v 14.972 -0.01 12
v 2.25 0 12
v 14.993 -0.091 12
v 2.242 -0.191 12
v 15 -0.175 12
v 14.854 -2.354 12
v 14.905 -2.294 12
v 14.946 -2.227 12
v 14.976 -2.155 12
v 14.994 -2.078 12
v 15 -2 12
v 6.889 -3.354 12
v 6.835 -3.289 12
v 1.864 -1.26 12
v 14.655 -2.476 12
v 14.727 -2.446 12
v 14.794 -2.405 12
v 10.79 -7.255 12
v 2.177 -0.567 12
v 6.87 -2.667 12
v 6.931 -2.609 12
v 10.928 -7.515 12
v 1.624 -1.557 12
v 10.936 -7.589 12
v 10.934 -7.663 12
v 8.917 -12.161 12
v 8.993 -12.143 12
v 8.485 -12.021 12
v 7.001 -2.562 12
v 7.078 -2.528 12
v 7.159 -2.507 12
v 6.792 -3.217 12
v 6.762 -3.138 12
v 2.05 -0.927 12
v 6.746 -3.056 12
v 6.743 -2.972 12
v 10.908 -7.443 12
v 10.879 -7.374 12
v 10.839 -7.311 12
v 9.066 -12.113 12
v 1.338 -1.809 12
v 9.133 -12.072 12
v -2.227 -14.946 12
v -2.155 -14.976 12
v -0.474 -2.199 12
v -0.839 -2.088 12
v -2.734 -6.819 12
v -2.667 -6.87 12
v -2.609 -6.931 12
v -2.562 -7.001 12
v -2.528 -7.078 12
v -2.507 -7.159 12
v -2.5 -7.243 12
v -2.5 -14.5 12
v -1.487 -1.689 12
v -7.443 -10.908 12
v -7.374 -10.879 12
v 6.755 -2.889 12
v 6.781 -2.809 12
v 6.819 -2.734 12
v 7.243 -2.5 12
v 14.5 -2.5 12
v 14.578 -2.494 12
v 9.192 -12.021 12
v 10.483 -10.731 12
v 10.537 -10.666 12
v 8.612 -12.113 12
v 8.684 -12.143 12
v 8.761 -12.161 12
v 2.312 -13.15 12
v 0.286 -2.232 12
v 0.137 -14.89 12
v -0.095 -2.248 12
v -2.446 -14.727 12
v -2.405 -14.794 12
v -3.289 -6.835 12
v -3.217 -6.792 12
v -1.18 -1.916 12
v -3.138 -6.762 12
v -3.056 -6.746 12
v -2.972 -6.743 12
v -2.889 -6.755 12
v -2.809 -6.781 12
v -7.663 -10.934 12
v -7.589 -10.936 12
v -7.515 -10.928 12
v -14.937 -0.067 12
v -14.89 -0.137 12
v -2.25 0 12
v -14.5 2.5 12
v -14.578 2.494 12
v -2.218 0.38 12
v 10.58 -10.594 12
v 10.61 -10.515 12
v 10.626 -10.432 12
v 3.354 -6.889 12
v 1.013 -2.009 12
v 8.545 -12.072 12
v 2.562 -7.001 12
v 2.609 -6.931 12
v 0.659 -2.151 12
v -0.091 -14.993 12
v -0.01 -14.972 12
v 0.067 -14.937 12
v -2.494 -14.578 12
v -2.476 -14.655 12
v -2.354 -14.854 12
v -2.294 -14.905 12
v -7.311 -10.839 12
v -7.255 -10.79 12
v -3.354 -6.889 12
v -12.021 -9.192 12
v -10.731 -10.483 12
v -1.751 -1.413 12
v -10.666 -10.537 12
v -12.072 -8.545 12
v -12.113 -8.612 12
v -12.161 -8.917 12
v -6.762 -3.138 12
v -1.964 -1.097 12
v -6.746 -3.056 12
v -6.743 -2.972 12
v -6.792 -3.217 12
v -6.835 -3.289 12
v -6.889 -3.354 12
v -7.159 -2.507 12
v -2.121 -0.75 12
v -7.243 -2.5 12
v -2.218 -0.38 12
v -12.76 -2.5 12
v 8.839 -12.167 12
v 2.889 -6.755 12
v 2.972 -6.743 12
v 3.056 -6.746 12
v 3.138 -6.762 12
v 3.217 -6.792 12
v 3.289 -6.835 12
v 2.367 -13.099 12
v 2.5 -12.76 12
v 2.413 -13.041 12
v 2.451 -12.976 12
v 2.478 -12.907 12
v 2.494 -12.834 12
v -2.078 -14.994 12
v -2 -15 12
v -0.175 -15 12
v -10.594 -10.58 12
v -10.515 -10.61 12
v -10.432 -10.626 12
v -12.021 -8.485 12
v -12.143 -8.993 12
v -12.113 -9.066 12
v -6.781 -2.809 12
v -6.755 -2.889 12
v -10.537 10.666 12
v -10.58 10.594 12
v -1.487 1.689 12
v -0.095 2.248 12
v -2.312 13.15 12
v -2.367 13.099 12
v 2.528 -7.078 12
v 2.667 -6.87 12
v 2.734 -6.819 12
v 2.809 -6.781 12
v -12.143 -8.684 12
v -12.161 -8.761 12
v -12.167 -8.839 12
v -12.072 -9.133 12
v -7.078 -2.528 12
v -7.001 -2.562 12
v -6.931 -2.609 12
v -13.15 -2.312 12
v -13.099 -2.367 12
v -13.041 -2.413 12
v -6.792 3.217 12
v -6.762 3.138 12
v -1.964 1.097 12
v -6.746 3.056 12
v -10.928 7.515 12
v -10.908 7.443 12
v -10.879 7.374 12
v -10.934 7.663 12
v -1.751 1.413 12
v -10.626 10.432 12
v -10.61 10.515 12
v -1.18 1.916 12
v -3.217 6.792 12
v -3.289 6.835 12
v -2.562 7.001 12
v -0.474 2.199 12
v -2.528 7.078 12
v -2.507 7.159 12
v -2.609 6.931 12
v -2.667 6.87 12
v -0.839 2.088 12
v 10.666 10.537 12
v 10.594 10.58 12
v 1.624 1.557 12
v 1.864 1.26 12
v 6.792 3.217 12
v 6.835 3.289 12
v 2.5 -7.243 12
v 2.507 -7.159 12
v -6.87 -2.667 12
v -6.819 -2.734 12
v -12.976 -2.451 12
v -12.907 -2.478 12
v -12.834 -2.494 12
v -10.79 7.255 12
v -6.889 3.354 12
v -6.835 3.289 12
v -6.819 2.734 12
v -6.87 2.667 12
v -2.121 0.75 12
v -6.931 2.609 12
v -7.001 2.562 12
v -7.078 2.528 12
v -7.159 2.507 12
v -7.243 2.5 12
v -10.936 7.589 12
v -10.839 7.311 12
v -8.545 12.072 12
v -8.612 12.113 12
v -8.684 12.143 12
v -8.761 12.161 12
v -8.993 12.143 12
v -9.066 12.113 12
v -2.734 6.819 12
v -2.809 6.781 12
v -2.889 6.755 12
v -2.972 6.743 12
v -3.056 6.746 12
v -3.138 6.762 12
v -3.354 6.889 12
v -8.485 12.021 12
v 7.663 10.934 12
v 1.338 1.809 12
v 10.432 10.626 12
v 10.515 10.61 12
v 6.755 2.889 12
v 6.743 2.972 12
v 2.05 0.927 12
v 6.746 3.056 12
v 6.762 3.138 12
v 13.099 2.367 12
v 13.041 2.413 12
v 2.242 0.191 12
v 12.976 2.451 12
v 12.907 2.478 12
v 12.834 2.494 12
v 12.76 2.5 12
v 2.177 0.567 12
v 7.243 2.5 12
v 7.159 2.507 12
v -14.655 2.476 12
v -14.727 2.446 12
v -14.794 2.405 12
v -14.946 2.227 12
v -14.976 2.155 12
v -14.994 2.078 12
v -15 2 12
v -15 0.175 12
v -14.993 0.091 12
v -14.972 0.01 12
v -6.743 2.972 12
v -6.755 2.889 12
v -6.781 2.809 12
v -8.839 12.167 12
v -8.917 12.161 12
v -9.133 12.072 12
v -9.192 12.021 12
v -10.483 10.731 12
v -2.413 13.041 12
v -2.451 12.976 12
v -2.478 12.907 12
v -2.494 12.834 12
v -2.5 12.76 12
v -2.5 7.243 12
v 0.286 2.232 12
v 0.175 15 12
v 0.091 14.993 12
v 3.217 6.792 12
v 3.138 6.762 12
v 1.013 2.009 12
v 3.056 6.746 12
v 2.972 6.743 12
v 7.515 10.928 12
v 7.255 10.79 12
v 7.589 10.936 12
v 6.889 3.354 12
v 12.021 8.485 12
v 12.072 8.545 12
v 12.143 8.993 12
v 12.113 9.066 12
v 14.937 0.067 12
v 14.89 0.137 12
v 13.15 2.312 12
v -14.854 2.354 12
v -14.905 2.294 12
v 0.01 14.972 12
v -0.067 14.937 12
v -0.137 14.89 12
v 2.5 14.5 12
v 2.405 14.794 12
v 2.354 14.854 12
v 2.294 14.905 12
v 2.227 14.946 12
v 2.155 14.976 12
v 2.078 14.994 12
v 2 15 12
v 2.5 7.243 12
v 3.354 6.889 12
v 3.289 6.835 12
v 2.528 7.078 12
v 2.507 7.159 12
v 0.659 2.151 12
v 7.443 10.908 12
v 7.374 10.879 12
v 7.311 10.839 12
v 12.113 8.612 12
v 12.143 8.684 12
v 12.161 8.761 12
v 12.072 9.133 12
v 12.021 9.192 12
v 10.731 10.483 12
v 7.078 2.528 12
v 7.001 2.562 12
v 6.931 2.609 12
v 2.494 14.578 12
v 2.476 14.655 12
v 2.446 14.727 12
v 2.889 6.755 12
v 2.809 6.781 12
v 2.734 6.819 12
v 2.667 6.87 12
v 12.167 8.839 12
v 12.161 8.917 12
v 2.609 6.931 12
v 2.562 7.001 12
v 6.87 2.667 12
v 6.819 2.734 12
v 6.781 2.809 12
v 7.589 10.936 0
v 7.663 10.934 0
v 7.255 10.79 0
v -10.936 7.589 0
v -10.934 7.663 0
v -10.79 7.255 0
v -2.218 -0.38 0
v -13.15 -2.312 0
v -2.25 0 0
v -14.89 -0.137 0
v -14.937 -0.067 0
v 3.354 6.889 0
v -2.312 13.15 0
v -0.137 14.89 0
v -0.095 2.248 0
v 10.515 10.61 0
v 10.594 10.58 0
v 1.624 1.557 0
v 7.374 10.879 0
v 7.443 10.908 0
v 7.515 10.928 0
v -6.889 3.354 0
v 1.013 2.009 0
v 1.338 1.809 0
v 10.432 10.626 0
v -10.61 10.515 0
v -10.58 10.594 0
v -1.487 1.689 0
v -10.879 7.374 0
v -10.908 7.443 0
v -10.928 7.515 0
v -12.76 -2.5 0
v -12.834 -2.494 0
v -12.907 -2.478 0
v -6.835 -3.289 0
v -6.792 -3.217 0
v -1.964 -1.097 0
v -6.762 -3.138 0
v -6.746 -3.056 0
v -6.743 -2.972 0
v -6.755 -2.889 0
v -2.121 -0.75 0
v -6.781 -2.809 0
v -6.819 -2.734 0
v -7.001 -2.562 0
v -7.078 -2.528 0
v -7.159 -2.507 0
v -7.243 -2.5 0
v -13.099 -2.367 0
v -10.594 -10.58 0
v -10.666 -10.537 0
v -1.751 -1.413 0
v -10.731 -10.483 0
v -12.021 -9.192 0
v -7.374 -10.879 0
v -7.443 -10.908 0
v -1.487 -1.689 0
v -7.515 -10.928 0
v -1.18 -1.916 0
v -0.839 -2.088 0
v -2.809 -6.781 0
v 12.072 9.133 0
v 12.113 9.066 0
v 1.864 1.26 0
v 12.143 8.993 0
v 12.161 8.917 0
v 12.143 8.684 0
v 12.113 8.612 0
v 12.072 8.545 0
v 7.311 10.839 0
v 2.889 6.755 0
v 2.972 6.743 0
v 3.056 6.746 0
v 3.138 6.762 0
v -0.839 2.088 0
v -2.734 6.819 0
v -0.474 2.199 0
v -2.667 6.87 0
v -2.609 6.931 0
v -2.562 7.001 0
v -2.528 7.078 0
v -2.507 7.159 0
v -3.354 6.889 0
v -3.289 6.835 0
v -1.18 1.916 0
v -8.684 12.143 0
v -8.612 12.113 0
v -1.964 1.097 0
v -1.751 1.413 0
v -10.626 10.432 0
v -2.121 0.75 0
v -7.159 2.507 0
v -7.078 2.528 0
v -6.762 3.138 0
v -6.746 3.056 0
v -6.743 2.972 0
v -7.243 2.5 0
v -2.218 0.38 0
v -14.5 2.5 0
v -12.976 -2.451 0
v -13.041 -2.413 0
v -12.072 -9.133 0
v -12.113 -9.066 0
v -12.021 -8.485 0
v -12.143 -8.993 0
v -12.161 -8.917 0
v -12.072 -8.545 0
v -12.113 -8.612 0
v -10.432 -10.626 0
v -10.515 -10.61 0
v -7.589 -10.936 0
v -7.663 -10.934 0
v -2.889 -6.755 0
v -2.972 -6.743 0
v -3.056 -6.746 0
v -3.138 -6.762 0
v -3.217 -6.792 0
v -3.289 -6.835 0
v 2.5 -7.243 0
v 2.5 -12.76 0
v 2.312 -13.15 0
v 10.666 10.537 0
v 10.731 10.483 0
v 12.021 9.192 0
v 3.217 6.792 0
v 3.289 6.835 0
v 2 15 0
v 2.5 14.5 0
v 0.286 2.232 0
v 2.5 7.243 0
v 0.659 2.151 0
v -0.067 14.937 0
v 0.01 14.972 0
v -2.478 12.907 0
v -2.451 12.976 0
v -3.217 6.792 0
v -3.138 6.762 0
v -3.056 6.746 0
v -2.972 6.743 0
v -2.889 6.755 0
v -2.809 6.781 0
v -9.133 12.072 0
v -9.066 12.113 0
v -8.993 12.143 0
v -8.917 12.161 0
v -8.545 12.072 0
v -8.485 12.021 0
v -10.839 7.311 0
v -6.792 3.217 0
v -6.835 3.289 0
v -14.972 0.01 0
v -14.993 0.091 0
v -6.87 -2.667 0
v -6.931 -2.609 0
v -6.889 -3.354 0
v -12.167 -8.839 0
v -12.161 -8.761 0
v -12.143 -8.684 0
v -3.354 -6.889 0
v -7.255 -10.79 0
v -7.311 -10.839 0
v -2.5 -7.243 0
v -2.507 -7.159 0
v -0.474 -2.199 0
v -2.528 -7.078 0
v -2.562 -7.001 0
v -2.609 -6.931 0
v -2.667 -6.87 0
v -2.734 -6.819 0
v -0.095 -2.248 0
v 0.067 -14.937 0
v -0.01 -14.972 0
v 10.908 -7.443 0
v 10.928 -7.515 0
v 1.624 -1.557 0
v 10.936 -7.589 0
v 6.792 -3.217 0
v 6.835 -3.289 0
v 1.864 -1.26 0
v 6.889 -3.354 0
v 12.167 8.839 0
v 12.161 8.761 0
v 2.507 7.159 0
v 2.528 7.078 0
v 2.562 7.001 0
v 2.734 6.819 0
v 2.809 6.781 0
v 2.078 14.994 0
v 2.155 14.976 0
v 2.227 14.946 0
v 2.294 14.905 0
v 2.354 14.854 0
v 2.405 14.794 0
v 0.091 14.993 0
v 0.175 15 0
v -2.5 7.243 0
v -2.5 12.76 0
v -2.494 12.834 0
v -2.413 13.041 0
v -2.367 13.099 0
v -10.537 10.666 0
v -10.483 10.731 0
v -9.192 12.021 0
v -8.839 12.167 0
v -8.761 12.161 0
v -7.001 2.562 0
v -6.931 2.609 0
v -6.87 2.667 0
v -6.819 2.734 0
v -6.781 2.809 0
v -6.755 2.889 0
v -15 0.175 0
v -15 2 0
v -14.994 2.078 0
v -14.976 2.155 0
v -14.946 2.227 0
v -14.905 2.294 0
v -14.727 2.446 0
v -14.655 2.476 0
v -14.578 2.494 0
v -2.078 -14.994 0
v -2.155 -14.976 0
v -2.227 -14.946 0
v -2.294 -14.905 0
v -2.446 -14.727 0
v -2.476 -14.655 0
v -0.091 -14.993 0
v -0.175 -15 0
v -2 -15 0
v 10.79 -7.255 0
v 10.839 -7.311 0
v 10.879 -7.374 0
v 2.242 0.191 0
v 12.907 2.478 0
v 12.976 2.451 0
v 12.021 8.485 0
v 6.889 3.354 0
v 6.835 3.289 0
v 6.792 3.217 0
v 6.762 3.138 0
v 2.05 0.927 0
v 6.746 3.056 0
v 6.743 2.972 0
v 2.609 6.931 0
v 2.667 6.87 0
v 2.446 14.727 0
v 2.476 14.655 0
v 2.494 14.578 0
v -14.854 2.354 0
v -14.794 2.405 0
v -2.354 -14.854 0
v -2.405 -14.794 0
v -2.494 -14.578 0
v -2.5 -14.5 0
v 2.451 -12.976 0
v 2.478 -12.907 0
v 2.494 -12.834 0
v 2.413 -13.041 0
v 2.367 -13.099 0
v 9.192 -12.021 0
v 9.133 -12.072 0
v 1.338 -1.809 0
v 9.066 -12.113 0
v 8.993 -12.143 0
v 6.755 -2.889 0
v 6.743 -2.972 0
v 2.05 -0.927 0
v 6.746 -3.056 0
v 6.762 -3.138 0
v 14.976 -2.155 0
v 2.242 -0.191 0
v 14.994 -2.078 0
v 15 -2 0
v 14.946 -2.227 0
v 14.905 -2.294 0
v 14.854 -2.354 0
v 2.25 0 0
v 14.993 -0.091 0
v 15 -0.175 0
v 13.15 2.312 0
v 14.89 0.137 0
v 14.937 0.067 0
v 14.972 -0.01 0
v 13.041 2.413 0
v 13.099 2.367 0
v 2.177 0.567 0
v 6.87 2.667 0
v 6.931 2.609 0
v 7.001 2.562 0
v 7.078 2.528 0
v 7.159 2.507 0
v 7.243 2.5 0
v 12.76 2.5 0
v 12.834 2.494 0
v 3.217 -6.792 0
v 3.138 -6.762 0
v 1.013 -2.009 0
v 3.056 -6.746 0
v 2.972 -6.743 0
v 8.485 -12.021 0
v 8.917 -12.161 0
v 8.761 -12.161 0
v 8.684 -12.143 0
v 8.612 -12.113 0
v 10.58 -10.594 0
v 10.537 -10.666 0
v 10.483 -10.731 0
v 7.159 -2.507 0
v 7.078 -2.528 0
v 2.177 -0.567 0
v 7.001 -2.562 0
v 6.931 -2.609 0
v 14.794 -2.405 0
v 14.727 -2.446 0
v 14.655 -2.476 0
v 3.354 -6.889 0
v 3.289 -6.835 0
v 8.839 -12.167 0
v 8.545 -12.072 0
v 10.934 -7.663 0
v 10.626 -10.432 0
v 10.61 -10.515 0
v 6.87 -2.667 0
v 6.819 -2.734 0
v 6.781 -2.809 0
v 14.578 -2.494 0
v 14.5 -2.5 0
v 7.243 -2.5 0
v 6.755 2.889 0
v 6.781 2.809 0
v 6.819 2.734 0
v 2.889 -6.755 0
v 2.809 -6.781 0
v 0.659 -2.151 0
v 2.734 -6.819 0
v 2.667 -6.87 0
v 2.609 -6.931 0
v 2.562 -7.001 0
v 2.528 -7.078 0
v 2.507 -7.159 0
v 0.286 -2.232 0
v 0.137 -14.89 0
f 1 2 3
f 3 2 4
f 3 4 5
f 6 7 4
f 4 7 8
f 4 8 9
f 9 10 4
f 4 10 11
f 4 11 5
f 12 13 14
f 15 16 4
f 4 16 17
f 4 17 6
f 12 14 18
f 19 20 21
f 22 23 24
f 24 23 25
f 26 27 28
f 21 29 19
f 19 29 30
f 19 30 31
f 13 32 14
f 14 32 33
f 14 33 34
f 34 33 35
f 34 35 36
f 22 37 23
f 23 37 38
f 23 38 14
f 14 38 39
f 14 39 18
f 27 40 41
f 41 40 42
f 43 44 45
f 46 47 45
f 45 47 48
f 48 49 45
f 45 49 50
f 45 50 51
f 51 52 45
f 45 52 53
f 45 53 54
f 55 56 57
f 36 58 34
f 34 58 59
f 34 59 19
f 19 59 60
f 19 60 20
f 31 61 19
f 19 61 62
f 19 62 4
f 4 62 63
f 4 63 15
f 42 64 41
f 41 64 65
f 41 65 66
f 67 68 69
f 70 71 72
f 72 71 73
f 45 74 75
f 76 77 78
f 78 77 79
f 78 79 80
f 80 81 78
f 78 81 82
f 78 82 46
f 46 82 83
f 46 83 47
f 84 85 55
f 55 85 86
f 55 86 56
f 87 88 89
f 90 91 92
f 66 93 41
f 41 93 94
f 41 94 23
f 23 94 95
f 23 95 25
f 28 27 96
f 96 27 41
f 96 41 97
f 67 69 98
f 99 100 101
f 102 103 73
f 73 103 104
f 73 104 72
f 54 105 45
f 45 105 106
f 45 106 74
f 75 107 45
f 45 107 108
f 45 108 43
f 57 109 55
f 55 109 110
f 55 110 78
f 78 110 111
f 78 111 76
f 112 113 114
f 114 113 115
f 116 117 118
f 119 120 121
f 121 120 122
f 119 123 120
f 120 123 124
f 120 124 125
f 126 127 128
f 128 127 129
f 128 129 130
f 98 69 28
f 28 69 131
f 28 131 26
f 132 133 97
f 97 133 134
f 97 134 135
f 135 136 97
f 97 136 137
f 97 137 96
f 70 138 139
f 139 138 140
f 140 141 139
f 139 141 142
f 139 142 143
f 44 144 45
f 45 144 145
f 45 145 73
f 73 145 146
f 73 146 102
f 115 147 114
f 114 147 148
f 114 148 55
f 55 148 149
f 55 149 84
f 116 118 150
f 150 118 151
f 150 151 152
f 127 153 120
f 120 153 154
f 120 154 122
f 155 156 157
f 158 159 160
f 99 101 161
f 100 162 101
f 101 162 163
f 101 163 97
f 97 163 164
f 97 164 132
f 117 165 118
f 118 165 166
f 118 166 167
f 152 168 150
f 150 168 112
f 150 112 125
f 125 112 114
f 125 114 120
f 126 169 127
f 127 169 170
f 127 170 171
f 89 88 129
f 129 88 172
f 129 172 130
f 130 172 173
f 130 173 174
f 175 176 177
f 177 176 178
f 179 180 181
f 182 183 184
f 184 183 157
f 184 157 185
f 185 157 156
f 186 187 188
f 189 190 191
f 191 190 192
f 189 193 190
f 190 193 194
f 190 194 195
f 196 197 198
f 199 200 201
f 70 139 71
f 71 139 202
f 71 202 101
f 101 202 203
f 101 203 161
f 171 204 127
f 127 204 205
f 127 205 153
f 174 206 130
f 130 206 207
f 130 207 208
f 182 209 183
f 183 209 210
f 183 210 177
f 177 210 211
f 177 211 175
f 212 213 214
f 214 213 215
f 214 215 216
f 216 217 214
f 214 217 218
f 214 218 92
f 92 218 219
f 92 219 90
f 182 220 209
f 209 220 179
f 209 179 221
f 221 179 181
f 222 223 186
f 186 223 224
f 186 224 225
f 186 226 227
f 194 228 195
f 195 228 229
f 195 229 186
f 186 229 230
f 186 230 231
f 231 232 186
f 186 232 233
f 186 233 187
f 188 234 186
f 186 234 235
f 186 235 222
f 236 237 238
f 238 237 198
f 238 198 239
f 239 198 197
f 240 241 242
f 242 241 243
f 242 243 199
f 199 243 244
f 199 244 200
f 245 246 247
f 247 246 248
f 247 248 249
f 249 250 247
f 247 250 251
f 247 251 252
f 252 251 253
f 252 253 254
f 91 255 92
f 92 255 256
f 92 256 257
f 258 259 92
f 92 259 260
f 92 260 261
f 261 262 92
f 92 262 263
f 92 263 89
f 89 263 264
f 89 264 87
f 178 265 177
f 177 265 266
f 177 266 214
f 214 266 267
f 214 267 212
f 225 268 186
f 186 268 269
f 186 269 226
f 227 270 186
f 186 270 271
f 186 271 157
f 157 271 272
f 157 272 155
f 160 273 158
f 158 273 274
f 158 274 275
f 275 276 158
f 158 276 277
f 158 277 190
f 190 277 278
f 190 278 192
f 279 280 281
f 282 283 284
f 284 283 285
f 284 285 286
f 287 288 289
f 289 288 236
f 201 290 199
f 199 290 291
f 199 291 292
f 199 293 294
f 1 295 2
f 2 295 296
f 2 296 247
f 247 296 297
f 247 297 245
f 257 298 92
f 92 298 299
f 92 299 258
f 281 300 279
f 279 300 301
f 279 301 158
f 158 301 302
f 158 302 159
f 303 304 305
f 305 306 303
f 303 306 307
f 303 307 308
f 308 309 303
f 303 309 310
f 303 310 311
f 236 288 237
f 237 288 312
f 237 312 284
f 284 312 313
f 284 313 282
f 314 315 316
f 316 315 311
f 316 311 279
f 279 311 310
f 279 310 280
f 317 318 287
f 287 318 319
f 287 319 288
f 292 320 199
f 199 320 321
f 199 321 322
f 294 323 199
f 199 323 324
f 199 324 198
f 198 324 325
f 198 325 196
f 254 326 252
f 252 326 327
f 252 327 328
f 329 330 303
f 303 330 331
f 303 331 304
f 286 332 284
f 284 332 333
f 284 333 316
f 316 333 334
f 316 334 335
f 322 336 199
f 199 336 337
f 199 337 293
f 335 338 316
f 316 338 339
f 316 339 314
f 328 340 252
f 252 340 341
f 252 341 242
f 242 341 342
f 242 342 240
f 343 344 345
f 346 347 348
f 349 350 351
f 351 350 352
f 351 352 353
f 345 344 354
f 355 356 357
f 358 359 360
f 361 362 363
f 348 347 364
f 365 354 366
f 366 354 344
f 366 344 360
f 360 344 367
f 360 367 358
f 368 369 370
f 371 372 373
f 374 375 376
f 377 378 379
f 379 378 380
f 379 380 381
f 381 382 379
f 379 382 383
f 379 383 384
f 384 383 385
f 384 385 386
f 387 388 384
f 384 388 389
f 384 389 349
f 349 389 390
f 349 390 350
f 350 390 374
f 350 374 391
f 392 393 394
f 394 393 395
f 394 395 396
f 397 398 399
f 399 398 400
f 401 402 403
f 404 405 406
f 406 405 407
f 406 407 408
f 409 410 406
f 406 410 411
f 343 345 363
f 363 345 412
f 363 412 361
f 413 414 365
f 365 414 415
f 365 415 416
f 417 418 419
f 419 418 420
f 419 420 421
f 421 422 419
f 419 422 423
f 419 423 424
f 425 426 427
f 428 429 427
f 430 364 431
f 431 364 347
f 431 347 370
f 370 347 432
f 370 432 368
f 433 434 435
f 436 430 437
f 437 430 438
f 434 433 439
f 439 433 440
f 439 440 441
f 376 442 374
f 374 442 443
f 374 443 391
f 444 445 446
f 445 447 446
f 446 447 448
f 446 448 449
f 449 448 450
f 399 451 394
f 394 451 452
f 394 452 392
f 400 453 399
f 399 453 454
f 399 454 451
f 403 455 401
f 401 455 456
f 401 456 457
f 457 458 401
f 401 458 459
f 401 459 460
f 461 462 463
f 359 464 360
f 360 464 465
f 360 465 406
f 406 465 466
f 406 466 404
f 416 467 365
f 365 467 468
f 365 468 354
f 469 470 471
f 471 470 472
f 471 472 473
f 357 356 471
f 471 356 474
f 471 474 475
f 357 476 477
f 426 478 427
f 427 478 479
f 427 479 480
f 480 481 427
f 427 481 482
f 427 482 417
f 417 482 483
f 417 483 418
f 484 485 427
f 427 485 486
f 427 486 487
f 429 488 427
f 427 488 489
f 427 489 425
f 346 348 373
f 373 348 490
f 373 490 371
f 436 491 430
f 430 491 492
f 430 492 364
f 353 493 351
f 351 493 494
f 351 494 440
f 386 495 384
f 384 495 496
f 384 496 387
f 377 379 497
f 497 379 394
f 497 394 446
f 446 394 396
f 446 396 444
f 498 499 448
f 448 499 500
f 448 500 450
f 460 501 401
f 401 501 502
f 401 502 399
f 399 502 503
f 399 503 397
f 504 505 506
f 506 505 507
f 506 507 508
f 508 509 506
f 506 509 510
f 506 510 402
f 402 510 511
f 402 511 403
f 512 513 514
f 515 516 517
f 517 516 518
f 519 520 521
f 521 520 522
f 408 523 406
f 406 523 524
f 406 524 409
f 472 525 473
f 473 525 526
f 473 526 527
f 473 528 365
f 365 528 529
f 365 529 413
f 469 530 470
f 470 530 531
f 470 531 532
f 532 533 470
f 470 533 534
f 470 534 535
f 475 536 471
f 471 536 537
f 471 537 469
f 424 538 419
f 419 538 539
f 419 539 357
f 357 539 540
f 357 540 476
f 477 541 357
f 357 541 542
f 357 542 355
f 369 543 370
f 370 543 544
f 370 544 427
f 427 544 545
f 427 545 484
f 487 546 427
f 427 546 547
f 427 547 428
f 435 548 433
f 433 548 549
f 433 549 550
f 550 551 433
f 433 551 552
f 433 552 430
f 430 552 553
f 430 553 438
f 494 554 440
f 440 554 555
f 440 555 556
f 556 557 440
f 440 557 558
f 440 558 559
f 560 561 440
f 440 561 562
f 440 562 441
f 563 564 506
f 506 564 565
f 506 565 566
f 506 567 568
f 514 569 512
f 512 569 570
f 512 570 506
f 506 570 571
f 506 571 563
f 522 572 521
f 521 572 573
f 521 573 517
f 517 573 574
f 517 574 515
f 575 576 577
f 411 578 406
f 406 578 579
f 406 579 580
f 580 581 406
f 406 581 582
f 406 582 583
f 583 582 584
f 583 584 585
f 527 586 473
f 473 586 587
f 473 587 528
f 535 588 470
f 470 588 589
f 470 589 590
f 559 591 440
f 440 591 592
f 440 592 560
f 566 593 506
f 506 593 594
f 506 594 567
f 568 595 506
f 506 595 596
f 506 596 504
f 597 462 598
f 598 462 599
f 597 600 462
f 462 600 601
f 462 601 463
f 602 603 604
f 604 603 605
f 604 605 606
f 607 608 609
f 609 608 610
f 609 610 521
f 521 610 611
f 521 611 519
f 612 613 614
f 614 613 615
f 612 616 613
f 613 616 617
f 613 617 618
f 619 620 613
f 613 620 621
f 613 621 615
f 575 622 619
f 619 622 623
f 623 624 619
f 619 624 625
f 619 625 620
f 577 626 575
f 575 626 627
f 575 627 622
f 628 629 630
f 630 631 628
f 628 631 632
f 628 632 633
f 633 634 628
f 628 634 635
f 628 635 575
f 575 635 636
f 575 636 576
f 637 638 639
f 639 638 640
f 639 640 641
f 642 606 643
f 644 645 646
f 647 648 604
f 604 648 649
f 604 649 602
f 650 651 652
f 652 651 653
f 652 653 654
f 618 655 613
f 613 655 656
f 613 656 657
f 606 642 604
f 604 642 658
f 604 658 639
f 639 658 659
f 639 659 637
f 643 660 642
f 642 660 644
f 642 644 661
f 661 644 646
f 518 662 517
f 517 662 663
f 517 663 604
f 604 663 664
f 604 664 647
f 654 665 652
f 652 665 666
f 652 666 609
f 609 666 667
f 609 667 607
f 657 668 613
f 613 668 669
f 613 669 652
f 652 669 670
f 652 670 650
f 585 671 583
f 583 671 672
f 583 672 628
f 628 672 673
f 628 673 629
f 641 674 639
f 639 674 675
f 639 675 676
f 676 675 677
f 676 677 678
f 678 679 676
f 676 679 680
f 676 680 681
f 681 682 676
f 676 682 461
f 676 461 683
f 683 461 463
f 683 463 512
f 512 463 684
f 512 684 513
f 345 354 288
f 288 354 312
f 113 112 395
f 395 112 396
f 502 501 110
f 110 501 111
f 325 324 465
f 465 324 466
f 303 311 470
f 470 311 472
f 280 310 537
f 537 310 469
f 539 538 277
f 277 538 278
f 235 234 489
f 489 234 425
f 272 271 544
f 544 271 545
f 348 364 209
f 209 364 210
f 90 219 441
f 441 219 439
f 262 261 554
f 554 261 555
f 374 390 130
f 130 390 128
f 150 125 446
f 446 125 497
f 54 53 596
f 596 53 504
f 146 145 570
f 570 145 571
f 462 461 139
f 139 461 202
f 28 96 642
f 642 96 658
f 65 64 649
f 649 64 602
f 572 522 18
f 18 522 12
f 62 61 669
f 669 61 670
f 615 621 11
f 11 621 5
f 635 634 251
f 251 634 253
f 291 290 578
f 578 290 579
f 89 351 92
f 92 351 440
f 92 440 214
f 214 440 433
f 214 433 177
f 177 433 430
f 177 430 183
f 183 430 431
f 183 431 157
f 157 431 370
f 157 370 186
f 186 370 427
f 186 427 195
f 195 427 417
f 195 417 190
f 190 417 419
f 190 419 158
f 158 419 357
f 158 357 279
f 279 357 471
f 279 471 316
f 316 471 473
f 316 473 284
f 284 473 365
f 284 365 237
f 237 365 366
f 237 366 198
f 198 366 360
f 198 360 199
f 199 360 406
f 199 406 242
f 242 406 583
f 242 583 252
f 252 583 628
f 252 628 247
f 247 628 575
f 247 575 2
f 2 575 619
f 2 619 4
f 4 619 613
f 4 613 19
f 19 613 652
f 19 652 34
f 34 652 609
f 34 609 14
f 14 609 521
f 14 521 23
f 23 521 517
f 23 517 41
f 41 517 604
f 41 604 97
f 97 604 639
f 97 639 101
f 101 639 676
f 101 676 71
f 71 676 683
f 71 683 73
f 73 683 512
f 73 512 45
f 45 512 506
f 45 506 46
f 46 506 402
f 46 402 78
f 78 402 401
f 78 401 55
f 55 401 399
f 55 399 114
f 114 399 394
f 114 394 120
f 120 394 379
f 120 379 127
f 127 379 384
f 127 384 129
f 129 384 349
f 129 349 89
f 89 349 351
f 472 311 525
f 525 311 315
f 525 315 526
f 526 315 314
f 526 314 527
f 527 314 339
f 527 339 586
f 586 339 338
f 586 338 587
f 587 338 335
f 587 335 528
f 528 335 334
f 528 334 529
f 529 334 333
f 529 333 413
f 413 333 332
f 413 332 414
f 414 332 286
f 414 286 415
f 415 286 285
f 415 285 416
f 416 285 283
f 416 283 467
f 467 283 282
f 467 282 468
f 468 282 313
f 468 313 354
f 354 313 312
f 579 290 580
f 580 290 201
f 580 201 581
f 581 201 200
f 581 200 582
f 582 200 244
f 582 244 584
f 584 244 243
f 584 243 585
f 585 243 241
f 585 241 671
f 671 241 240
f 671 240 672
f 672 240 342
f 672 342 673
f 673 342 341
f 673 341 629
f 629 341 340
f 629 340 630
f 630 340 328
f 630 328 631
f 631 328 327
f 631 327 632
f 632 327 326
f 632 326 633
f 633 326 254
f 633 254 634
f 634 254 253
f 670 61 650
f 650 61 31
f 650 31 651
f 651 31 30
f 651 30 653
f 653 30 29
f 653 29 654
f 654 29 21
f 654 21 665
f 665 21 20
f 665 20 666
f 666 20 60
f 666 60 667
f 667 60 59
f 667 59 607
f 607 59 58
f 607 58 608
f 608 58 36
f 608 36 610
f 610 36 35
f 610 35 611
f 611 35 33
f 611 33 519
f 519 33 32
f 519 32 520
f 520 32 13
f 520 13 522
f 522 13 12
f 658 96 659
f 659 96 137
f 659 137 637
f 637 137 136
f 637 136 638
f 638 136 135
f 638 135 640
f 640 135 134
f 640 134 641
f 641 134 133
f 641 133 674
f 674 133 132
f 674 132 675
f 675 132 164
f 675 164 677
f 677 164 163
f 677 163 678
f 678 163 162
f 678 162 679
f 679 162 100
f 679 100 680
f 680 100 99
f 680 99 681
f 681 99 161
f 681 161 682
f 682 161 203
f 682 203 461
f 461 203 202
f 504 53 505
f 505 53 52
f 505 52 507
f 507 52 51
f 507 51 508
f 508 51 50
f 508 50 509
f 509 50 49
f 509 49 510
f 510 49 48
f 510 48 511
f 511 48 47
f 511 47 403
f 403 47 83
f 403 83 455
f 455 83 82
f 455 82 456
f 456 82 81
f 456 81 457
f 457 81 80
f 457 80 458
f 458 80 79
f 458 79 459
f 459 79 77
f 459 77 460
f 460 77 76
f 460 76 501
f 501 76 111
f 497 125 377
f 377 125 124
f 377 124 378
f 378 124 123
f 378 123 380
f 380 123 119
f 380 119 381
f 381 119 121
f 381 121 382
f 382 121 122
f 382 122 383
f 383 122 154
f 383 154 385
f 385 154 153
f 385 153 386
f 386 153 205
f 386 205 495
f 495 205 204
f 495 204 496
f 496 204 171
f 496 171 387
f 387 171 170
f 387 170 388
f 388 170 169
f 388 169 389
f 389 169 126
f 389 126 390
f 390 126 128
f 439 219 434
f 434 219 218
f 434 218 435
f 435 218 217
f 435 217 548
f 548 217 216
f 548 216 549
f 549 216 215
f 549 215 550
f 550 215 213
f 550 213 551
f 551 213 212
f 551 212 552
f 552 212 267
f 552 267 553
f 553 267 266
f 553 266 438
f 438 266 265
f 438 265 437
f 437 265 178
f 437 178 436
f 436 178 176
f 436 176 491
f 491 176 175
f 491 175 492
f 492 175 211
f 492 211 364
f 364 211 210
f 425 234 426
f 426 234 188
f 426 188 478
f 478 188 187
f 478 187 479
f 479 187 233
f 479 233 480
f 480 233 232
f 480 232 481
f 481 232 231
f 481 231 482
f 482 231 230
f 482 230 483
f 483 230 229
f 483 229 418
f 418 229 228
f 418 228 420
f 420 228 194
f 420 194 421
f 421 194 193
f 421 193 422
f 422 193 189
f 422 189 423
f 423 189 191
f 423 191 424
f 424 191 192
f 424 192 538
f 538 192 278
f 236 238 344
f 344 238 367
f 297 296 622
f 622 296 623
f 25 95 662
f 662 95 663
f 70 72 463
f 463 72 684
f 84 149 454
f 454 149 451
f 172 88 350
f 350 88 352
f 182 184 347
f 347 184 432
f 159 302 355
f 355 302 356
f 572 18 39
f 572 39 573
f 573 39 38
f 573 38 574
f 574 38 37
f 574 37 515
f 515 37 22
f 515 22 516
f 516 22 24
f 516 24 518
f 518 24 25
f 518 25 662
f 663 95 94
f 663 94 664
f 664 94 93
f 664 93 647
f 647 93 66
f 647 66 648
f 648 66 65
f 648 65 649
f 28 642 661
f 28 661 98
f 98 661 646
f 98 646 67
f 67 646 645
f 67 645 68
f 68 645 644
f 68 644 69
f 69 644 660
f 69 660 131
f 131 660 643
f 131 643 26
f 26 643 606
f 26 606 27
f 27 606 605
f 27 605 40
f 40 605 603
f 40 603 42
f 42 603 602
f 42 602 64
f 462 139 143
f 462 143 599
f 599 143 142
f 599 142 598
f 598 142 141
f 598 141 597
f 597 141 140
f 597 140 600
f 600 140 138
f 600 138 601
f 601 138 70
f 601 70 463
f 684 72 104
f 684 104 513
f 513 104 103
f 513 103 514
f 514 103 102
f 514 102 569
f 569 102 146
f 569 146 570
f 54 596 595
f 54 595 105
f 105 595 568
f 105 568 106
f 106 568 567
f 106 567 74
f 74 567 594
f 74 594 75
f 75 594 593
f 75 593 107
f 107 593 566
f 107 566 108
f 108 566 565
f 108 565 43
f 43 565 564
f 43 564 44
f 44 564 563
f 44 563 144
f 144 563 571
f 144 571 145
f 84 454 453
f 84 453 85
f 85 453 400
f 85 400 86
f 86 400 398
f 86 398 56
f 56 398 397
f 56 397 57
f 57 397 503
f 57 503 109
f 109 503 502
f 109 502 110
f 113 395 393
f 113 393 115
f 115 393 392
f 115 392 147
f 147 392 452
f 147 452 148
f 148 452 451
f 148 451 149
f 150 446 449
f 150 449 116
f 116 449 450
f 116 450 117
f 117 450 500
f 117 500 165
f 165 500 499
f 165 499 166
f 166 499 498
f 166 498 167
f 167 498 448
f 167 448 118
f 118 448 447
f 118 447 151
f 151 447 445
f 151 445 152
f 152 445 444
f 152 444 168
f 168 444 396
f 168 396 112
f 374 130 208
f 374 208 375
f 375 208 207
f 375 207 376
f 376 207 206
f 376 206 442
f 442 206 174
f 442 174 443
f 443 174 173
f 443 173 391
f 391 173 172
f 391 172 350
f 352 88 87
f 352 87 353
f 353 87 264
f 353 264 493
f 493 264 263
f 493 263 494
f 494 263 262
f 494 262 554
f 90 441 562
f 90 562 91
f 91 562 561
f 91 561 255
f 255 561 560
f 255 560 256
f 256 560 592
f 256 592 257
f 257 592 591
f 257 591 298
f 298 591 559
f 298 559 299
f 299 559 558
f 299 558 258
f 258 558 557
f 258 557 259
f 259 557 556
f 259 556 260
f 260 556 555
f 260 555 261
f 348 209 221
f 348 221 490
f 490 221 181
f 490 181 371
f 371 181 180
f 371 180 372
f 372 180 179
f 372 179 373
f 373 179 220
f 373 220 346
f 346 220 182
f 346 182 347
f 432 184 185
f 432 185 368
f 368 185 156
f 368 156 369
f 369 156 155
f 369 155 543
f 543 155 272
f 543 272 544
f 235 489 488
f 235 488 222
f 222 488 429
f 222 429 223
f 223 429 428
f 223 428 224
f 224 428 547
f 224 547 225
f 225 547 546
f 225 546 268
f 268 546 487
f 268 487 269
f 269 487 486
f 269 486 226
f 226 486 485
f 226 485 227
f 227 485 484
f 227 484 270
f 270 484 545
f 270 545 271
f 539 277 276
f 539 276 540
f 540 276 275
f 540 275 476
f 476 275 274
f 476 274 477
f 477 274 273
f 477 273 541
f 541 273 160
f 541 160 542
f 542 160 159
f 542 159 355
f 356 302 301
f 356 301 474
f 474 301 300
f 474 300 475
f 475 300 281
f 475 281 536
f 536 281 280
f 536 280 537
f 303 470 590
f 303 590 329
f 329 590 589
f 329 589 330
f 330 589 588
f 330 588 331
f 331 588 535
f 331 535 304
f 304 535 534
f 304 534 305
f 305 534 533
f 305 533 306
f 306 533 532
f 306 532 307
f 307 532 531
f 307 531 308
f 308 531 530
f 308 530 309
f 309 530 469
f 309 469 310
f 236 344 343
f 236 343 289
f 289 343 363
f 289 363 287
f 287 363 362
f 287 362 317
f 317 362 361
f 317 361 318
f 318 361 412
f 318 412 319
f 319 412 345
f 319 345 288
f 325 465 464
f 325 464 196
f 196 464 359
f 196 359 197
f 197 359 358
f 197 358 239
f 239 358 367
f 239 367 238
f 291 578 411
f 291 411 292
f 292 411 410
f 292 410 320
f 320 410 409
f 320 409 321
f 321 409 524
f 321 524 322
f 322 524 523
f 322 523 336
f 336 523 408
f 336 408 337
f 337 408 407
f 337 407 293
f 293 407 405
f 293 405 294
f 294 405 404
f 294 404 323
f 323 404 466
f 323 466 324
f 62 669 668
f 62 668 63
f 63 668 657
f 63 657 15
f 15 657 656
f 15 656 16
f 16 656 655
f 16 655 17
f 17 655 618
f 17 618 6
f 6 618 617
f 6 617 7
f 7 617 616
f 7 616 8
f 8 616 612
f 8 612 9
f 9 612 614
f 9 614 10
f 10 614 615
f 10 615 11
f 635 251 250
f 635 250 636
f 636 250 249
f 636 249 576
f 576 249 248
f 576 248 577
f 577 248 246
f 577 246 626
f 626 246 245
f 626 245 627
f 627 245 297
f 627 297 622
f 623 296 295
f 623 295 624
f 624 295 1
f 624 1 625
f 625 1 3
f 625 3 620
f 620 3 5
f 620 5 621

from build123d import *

# Parameters (mm, degrees)
SKETCH3_R           = 2.25
BOSS_EXTRUDE1_DEPTH = 12
INNER_EDGES_R       = 0.5
CUT_EXTRUDE2_DEPTH  = 13
OUTER_EDGES_R       = 0.5


with BuildPart() as part:
    # Sketch3 → Boss-Extrude1 (new body)
    with BuildSketch(Plane.XY):
        Polygon((-2.5, 15), (2.5, 15), (2.5, 6.035533906), (8.838834765, 12.374368671), (12.374368671, 8.838834765), (6.035533906, 2.5), (15, 2.5), (15, -2.5), (6.035533906, -2.5), (12.374368671, -8.838834765), (8.838834765, -12.374368671), (2.5, -6.035533906), (2.5, -15), (-2.5, -15), (-2.5, -6.035533906), (-8.838834765, -12.374368671), (-12.374368671, -8.838834765), (-6.035533906, -2.5), (-15, -2.5), (-15, 2.5), (-6.035533906, 2.5), (-12.374368671, 8.838834765), (-8.838834765, 12.374368671), (-2.5, 6.035533906), align=None)
        Circle(SKETCH3_R, mode=Mode.SUBTRACT)
    extrude(amount=BOSS_EXTRUDE1_DEPTH)

    # Inner Edges
    inner_edges_edges = [part.edges().sort_by_distance(p)[0] for p in [
        (6.035533906, 2.5, 6),
        (6.035533906, -2.5, 6),
        (2.5, -6.035533906, 6),
        (-2.5, -6.035533906, 6),
        (-6.035533906, -2.5, 6),
        (-6.035533906, 2.5, 6),
        (-2.5, 6.035533906, 6),
        (2.5, 6.035533906, 6),
    ]]
    fillet(inner_edges_edges, radius=INNER_EDGES_R)

    # Sketch4 → Cut-Extrude2 (cut, through all)
    with BuildSketch(Plane.XY.offset(12)):
        Polygon((10.960155108, -7.424621202), (10.606601718, -10.606601718), (12.374368671, -8.838834765), align=None)
        Polygon((13, 2.5), (15, 0), (15, 2.5), align=None)
        Polygon((8.838834765, 12.374368671), (7.424621202, 10.960155108), (10.606601718, 10.606601718), align=None)
        Polygon((-2.5, 13), (0, 15), (-2.5, 15), align=None)
        Polygon((-10.960155108, 7.424621202), (-10.606601718, 10.606601718), (-12.374368671, 8.838834765), align=None)
        Polygon((-13, -2.5), (-15, 0), (-15, -2.5), align=None)
        Polygon((-7.424621202, -10.960155108), (-10.606601718, -10.606601718), (-8.838834765, -12.374368671), align=None)
        Polygon((0, -15), (2.5, -15), (2.5, -13), align=None)
    extrude(amount=-CUT_EXTRUDE2_DEPTH, mode=Mode.SUBTRACT)

    # Outer Edges
    outer_edges_edges = [part.edges().sort_by_distance(p)[0] for p in [
        (13, 2.5, 6),
        (15, 0, 6),
        (10.606601718, 10.606601718, 6),
        (7.424621202, 10.960155108, 6),
        (-2.5, 13, 6),
        (0, 15, 6),
        (-10.960155108, 7.424621202, 6),
        (-10.606601718, 10.606601718, 6),
        (-13, -2.5, 6),
        (-15, 0, 6),
        (-10.606601718, -10.606601718, 6),
        (-7.424621202, -10.960155108, 6),
        (2.5, -13, 6),
        (0, -15, 6),
        (10.960155108, -7.424621202, 6),
        (10.606601718, -10.606601718, 6),
        (12.374368671, 8.838834765, 6),
        (15, -2.5, 6),
        (8.838834765, -12.374368671, 6),
        (-2.5, -15, 6),
        (-12.374368671, -8.838834765, 6),
        (-15, 2.5, 6),
        (-8.838834765, 12.374368671, 6),
        (2.5, 15, 6),
    ]]
    fillet(outer_edges_edges, radius=OUTER_EDGES_R)


solid = part.part
